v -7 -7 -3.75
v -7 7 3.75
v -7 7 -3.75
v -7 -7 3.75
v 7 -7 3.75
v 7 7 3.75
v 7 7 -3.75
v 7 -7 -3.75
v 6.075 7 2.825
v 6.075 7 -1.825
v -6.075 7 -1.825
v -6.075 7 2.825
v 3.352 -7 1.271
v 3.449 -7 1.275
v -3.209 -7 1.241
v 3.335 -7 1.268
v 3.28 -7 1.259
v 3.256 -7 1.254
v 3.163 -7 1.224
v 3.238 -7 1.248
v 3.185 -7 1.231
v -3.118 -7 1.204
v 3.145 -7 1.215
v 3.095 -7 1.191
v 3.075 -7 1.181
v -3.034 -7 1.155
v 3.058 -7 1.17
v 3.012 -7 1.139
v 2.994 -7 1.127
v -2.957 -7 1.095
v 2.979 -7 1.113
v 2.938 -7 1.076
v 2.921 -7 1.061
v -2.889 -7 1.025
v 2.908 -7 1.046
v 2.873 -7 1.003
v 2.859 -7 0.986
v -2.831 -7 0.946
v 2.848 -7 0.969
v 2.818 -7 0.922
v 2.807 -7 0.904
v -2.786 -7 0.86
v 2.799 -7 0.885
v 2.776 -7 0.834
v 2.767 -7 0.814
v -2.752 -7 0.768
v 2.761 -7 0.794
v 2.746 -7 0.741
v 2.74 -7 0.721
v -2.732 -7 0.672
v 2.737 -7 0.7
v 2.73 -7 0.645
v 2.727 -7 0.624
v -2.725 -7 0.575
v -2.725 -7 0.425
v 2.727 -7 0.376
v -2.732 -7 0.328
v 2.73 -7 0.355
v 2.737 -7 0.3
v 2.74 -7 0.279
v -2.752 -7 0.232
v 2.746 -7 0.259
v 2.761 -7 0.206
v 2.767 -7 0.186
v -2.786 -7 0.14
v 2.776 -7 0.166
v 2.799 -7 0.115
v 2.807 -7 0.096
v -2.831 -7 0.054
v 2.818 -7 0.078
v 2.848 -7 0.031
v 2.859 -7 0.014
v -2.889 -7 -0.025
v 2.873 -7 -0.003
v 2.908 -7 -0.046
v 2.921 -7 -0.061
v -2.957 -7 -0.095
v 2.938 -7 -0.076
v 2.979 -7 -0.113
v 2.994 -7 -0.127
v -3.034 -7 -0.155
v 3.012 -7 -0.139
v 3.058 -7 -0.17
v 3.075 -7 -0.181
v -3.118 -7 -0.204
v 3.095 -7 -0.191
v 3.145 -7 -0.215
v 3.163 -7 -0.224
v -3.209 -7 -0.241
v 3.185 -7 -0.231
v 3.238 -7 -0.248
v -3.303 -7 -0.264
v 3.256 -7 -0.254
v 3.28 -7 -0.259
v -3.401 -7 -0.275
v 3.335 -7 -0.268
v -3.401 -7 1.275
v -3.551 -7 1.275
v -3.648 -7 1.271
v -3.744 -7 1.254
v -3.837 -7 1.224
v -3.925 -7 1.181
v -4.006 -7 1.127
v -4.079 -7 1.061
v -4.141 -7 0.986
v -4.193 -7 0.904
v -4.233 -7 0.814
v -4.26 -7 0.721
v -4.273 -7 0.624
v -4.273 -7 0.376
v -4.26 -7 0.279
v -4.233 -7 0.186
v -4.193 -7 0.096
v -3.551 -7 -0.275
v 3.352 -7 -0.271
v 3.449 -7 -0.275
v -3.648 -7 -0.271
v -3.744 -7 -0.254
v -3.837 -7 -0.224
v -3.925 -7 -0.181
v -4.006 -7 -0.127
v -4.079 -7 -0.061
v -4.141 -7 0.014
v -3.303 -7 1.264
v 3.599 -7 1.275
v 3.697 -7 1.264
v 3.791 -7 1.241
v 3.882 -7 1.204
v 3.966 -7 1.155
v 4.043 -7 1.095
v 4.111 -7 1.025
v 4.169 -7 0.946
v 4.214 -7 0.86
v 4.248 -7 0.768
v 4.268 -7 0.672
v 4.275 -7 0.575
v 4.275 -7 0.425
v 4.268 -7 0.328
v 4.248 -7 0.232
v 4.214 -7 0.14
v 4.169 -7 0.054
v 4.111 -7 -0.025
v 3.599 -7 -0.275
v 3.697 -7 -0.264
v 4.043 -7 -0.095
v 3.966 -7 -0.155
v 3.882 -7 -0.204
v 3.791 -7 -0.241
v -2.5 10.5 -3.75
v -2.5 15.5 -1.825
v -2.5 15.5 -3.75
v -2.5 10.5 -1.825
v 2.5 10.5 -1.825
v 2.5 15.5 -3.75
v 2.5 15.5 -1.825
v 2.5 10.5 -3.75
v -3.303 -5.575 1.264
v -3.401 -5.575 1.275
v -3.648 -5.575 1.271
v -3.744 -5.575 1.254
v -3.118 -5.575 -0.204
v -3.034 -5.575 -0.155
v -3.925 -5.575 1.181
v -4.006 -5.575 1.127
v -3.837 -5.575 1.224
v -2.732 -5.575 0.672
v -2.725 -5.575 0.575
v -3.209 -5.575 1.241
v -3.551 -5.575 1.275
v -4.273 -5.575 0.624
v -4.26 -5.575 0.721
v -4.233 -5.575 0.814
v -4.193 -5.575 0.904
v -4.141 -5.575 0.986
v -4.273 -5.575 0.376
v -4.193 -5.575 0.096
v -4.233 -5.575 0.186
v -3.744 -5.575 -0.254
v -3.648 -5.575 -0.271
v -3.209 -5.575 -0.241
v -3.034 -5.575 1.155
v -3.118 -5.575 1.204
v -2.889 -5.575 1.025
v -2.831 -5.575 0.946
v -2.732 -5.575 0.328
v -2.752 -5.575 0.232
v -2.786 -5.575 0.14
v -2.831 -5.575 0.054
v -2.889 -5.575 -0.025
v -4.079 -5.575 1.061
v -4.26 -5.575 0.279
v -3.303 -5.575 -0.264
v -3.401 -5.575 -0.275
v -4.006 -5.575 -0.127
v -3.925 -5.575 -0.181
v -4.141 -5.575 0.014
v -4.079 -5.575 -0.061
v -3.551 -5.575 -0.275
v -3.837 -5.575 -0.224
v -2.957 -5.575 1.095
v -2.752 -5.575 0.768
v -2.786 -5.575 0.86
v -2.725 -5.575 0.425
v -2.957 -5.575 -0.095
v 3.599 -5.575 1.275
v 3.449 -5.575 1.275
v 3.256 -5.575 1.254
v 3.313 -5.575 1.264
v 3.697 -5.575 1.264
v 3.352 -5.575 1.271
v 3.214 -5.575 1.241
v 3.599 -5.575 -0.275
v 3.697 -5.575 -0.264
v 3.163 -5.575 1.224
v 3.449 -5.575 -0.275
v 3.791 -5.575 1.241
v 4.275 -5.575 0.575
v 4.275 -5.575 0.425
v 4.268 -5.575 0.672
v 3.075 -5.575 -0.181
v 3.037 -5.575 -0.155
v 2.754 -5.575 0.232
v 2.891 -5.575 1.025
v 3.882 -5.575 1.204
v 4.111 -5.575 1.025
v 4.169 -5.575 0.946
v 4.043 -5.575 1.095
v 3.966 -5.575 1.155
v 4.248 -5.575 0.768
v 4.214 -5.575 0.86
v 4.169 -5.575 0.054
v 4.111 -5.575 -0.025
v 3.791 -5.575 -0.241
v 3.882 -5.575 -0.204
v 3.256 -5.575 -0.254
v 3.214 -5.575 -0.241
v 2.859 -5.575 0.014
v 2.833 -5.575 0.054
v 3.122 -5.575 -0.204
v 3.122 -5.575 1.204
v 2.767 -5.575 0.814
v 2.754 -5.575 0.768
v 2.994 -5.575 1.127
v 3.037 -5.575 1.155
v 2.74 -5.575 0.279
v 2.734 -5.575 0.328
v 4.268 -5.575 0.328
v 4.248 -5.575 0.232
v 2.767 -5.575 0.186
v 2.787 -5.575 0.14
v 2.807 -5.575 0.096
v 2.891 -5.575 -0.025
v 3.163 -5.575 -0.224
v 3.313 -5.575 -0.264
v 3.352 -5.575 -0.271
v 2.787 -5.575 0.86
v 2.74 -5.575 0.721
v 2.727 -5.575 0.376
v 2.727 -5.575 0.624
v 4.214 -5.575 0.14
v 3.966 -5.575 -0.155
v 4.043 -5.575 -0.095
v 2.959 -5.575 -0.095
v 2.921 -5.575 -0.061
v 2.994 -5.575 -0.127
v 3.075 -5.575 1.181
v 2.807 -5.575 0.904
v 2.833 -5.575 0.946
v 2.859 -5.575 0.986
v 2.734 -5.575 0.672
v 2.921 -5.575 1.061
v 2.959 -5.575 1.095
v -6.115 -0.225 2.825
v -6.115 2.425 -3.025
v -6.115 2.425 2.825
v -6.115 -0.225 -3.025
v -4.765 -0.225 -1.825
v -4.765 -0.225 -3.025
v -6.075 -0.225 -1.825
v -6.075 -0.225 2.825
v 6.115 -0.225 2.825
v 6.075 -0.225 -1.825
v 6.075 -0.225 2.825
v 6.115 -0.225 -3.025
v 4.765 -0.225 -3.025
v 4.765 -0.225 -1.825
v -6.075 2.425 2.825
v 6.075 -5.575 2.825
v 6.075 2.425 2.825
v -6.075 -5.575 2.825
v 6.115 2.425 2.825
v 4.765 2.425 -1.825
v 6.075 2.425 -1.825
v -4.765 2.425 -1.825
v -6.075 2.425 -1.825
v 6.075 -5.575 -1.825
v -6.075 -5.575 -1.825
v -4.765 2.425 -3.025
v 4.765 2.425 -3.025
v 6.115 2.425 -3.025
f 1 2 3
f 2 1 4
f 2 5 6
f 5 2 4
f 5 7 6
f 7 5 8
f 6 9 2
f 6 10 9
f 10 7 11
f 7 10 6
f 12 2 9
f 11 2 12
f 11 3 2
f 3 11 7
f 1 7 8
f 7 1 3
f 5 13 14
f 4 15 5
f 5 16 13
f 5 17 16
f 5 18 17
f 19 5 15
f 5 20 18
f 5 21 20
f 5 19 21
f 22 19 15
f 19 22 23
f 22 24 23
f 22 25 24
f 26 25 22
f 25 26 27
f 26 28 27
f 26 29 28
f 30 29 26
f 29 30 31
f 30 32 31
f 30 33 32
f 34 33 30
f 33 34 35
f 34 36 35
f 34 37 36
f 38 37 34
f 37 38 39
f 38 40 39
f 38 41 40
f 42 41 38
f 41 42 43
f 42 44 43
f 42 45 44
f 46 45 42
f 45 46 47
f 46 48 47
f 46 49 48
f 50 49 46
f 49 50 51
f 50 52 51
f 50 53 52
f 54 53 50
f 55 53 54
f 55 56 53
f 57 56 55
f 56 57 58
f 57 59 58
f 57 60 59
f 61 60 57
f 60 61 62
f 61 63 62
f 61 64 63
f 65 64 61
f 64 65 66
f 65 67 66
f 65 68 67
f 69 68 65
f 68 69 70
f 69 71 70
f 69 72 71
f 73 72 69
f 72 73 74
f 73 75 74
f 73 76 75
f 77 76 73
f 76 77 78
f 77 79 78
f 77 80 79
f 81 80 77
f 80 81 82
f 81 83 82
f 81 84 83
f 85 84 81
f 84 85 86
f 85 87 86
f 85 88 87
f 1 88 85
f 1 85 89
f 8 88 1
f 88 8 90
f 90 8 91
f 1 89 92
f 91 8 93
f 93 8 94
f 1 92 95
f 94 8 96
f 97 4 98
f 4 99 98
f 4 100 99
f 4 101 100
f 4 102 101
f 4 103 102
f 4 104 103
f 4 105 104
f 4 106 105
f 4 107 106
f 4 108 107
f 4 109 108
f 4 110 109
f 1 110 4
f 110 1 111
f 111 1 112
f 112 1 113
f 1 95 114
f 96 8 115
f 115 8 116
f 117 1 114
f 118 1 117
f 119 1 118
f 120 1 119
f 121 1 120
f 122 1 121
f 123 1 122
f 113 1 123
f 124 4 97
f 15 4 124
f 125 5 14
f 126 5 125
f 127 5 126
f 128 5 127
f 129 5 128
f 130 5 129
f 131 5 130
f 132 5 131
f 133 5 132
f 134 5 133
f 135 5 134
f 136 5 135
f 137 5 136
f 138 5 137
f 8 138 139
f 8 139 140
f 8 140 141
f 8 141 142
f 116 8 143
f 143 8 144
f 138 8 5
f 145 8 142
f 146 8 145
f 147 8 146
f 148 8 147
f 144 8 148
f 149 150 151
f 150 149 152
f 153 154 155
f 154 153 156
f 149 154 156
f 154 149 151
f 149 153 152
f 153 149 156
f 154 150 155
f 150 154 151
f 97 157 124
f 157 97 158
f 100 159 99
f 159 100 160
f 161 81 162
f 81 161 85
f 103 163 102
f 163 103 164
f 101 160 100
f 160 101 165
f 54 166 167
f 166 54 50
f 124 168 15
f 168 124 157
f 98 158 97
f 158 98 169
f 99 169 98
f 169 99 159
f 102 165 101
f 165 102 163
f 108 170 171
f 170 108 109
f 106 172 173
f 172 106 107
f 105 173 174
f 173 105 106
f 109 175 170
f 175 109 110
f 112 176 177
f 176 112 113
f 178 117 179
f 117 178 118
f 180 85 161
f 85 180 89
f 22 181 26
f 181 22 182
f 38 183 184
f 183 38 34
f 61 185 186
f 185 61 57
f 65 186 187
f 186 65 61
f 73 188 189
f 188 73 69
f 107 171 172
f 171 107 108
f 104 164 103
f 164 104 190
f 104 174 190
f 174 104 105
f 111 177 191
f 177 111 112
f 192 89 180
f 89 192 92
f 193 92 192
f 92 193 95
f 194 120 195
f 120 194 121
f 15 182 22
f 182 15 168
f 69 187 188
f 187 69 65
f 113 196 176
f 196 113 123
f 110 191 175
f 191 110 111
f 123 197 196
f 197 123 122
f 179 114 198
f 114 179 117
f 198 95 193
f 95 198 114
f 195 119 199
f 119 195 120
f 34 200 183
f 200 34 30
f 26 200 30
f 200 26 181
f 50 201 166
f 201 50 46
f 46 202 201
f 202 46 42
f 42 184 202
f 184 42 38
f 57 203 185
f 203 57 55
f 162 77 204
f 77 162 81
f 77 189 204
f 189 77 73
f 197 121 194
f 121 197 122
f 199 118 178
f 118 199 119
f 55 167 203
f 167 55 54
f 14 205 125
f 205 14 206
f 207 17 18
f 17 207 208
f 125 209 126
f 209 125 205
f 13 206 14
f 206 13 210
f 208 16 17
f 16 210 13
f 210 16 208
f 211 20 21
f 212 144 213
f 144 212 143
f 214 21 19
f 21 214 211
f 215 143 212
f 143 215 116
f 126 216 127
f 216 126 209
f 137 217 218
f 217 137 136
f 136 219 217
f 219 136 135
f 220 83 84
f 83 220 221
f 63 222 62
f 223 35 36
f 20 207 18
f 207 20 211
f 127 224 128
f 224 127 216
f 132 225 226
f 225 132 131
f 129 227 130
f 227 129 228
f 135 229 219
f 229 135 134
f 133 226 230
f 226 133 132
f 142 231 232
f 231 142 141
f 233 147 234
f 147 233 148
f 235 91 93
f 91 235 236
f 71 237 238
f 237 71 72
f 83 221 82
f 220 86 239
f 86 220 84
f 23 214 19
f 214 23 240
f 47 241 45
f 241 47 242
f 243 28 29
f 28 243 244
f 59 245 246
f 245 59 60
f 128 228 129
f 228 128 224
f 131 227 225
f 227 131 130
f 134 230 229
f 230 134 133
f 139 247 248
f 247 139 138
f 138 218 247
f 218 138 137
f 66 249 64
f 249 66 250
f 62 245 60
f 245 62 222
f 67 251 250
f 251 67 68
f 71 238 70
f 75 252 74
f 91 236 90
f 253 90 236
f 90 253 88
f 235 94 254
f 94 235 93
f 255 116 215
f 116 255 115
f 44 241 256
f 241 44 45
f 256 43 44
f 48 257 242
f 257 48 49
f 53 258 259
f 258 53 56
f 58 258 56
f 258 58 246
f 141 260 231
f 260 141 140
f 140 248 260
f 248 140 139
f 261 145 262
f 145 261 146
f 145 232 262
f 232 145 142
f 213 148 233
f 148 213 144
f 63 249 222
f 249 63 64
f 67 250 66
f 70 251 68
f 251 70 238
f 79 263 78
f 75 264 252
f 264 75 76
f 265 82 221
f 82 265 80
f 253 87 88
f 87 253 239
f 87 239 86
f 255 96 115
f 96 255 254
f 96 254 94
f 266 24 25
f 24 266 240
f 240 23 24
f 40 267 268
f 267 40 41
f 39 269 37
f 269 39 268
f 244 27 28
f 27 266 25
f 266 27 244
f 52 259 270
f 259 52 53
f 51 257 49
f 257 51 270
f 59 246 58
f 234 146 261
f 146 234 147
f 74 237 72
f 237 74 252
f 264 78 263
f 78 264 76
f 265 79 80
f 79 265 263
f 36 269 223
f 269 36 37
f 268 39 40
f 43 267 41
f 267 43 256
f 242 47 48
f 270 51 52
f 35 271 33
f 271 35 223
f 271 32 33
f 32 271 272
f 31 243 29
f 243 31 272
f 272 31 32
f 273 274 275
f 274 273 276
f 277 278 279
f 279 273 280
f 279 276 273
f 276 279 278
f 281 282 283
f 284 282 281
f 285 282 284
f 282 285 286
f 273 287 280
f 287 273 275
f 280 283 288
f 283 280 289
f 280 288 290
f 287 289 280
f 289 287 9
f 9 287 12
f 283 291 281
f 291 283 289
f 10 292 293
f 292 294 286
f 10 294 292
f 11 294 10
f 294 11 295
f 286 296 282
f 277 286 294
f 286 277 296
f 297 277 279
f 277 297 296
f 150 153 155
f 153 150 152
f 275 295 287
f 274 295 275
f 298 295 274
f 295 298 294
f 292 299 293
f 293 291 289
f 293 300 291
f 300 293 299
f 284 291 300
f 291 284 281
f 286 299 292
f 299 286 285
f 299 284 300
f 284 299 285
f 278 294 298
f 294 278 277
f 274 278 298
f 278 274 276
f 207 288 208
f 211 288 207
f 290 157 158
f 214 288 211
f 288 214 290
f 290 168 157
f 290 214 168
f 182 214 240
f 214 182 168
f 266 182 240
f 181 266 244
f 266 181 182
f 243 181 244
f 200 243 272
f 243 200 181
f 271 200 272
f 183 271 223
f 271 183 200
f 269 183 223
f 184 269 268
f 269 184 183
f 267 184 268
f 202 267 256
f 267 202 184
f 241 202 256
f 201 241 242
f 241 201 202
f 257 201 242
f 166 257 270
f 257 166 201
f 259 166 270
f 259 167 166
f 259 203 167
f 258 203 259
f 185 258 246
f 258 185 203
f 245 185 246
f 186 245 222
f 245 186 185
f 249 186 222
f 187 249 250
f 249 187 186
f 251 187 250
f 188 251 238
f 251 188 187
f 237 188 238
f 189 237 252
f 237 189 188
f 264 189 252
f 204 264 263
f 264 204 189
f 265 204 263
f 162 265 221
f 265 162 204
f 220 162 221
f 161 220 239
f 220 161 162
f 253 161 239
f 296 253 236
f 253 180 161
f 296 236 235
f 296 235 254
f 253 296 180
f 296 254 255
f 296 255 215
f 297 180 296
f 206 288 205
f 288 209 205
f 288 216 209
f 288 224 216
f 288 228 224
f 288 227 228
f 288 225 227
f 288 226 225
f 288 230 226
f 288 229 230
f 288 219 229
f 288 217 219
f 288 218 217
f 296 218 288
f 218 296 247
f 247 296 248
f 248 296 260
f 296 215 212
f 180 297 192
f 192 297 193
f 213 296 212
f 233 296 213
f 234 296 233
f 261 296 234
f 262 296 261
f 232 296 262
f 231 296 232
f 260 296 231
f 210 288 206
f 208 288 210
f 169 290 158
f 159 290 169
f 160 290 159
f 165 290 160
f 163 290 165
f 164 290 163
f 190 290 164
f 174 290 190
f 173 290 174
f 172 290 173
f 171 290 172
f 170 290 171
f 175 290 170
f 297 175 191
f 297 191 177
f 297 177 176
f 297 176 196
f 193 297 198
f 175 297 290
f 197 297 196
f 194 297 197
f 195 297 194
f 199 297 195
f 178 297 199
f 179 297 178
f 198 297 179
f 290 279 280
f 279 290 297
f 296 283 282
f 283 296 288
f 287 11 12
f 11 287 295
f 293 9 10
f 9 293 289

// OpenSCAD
module armband() {
    minkowski() {
        difference() {
            cube([30,5,5], center=true);
            cube([28,4,6], center=true);
        }
        sphere(r=0.25);
    }
}
$fn=45;

module usb_plug() {
    cube([12,30,4.5], center=true); //Y=14.8
    translate([-5.44,-8.4,-0.6]) cube([1.2,2.5,5.7], center=true);
    translate([5.44,-8.4,-0.6]) cube([1.2,2.5,5.7], center=true);
    translate([3.5,-10,0]) rotate([90,0,0]) cylinder(r=0.7,h=15, center=true);
    translate([-3.5,-10,0]) rotate([90,0,0]) cylinder(r=0.7,h=15, center=true);
}

module usb_difference() {
    minkowski() {
        usb_plug();
        cube(0.15, center=true);
    }
}

//armband();
//translate([0,9.5,0.5]) color("silver",0.5) usb_plug();
difference() {
    union() {
        color("red", 0.3) cube([14,14,7.5], center=true);
        translate([0,13,0]) cube([5,5,7.5], center=true);
    }
    translate([0,9.5,0.5]) usb_difference();
    translate([0,13,5]) cube([6,6,7.5], center=true);
}
